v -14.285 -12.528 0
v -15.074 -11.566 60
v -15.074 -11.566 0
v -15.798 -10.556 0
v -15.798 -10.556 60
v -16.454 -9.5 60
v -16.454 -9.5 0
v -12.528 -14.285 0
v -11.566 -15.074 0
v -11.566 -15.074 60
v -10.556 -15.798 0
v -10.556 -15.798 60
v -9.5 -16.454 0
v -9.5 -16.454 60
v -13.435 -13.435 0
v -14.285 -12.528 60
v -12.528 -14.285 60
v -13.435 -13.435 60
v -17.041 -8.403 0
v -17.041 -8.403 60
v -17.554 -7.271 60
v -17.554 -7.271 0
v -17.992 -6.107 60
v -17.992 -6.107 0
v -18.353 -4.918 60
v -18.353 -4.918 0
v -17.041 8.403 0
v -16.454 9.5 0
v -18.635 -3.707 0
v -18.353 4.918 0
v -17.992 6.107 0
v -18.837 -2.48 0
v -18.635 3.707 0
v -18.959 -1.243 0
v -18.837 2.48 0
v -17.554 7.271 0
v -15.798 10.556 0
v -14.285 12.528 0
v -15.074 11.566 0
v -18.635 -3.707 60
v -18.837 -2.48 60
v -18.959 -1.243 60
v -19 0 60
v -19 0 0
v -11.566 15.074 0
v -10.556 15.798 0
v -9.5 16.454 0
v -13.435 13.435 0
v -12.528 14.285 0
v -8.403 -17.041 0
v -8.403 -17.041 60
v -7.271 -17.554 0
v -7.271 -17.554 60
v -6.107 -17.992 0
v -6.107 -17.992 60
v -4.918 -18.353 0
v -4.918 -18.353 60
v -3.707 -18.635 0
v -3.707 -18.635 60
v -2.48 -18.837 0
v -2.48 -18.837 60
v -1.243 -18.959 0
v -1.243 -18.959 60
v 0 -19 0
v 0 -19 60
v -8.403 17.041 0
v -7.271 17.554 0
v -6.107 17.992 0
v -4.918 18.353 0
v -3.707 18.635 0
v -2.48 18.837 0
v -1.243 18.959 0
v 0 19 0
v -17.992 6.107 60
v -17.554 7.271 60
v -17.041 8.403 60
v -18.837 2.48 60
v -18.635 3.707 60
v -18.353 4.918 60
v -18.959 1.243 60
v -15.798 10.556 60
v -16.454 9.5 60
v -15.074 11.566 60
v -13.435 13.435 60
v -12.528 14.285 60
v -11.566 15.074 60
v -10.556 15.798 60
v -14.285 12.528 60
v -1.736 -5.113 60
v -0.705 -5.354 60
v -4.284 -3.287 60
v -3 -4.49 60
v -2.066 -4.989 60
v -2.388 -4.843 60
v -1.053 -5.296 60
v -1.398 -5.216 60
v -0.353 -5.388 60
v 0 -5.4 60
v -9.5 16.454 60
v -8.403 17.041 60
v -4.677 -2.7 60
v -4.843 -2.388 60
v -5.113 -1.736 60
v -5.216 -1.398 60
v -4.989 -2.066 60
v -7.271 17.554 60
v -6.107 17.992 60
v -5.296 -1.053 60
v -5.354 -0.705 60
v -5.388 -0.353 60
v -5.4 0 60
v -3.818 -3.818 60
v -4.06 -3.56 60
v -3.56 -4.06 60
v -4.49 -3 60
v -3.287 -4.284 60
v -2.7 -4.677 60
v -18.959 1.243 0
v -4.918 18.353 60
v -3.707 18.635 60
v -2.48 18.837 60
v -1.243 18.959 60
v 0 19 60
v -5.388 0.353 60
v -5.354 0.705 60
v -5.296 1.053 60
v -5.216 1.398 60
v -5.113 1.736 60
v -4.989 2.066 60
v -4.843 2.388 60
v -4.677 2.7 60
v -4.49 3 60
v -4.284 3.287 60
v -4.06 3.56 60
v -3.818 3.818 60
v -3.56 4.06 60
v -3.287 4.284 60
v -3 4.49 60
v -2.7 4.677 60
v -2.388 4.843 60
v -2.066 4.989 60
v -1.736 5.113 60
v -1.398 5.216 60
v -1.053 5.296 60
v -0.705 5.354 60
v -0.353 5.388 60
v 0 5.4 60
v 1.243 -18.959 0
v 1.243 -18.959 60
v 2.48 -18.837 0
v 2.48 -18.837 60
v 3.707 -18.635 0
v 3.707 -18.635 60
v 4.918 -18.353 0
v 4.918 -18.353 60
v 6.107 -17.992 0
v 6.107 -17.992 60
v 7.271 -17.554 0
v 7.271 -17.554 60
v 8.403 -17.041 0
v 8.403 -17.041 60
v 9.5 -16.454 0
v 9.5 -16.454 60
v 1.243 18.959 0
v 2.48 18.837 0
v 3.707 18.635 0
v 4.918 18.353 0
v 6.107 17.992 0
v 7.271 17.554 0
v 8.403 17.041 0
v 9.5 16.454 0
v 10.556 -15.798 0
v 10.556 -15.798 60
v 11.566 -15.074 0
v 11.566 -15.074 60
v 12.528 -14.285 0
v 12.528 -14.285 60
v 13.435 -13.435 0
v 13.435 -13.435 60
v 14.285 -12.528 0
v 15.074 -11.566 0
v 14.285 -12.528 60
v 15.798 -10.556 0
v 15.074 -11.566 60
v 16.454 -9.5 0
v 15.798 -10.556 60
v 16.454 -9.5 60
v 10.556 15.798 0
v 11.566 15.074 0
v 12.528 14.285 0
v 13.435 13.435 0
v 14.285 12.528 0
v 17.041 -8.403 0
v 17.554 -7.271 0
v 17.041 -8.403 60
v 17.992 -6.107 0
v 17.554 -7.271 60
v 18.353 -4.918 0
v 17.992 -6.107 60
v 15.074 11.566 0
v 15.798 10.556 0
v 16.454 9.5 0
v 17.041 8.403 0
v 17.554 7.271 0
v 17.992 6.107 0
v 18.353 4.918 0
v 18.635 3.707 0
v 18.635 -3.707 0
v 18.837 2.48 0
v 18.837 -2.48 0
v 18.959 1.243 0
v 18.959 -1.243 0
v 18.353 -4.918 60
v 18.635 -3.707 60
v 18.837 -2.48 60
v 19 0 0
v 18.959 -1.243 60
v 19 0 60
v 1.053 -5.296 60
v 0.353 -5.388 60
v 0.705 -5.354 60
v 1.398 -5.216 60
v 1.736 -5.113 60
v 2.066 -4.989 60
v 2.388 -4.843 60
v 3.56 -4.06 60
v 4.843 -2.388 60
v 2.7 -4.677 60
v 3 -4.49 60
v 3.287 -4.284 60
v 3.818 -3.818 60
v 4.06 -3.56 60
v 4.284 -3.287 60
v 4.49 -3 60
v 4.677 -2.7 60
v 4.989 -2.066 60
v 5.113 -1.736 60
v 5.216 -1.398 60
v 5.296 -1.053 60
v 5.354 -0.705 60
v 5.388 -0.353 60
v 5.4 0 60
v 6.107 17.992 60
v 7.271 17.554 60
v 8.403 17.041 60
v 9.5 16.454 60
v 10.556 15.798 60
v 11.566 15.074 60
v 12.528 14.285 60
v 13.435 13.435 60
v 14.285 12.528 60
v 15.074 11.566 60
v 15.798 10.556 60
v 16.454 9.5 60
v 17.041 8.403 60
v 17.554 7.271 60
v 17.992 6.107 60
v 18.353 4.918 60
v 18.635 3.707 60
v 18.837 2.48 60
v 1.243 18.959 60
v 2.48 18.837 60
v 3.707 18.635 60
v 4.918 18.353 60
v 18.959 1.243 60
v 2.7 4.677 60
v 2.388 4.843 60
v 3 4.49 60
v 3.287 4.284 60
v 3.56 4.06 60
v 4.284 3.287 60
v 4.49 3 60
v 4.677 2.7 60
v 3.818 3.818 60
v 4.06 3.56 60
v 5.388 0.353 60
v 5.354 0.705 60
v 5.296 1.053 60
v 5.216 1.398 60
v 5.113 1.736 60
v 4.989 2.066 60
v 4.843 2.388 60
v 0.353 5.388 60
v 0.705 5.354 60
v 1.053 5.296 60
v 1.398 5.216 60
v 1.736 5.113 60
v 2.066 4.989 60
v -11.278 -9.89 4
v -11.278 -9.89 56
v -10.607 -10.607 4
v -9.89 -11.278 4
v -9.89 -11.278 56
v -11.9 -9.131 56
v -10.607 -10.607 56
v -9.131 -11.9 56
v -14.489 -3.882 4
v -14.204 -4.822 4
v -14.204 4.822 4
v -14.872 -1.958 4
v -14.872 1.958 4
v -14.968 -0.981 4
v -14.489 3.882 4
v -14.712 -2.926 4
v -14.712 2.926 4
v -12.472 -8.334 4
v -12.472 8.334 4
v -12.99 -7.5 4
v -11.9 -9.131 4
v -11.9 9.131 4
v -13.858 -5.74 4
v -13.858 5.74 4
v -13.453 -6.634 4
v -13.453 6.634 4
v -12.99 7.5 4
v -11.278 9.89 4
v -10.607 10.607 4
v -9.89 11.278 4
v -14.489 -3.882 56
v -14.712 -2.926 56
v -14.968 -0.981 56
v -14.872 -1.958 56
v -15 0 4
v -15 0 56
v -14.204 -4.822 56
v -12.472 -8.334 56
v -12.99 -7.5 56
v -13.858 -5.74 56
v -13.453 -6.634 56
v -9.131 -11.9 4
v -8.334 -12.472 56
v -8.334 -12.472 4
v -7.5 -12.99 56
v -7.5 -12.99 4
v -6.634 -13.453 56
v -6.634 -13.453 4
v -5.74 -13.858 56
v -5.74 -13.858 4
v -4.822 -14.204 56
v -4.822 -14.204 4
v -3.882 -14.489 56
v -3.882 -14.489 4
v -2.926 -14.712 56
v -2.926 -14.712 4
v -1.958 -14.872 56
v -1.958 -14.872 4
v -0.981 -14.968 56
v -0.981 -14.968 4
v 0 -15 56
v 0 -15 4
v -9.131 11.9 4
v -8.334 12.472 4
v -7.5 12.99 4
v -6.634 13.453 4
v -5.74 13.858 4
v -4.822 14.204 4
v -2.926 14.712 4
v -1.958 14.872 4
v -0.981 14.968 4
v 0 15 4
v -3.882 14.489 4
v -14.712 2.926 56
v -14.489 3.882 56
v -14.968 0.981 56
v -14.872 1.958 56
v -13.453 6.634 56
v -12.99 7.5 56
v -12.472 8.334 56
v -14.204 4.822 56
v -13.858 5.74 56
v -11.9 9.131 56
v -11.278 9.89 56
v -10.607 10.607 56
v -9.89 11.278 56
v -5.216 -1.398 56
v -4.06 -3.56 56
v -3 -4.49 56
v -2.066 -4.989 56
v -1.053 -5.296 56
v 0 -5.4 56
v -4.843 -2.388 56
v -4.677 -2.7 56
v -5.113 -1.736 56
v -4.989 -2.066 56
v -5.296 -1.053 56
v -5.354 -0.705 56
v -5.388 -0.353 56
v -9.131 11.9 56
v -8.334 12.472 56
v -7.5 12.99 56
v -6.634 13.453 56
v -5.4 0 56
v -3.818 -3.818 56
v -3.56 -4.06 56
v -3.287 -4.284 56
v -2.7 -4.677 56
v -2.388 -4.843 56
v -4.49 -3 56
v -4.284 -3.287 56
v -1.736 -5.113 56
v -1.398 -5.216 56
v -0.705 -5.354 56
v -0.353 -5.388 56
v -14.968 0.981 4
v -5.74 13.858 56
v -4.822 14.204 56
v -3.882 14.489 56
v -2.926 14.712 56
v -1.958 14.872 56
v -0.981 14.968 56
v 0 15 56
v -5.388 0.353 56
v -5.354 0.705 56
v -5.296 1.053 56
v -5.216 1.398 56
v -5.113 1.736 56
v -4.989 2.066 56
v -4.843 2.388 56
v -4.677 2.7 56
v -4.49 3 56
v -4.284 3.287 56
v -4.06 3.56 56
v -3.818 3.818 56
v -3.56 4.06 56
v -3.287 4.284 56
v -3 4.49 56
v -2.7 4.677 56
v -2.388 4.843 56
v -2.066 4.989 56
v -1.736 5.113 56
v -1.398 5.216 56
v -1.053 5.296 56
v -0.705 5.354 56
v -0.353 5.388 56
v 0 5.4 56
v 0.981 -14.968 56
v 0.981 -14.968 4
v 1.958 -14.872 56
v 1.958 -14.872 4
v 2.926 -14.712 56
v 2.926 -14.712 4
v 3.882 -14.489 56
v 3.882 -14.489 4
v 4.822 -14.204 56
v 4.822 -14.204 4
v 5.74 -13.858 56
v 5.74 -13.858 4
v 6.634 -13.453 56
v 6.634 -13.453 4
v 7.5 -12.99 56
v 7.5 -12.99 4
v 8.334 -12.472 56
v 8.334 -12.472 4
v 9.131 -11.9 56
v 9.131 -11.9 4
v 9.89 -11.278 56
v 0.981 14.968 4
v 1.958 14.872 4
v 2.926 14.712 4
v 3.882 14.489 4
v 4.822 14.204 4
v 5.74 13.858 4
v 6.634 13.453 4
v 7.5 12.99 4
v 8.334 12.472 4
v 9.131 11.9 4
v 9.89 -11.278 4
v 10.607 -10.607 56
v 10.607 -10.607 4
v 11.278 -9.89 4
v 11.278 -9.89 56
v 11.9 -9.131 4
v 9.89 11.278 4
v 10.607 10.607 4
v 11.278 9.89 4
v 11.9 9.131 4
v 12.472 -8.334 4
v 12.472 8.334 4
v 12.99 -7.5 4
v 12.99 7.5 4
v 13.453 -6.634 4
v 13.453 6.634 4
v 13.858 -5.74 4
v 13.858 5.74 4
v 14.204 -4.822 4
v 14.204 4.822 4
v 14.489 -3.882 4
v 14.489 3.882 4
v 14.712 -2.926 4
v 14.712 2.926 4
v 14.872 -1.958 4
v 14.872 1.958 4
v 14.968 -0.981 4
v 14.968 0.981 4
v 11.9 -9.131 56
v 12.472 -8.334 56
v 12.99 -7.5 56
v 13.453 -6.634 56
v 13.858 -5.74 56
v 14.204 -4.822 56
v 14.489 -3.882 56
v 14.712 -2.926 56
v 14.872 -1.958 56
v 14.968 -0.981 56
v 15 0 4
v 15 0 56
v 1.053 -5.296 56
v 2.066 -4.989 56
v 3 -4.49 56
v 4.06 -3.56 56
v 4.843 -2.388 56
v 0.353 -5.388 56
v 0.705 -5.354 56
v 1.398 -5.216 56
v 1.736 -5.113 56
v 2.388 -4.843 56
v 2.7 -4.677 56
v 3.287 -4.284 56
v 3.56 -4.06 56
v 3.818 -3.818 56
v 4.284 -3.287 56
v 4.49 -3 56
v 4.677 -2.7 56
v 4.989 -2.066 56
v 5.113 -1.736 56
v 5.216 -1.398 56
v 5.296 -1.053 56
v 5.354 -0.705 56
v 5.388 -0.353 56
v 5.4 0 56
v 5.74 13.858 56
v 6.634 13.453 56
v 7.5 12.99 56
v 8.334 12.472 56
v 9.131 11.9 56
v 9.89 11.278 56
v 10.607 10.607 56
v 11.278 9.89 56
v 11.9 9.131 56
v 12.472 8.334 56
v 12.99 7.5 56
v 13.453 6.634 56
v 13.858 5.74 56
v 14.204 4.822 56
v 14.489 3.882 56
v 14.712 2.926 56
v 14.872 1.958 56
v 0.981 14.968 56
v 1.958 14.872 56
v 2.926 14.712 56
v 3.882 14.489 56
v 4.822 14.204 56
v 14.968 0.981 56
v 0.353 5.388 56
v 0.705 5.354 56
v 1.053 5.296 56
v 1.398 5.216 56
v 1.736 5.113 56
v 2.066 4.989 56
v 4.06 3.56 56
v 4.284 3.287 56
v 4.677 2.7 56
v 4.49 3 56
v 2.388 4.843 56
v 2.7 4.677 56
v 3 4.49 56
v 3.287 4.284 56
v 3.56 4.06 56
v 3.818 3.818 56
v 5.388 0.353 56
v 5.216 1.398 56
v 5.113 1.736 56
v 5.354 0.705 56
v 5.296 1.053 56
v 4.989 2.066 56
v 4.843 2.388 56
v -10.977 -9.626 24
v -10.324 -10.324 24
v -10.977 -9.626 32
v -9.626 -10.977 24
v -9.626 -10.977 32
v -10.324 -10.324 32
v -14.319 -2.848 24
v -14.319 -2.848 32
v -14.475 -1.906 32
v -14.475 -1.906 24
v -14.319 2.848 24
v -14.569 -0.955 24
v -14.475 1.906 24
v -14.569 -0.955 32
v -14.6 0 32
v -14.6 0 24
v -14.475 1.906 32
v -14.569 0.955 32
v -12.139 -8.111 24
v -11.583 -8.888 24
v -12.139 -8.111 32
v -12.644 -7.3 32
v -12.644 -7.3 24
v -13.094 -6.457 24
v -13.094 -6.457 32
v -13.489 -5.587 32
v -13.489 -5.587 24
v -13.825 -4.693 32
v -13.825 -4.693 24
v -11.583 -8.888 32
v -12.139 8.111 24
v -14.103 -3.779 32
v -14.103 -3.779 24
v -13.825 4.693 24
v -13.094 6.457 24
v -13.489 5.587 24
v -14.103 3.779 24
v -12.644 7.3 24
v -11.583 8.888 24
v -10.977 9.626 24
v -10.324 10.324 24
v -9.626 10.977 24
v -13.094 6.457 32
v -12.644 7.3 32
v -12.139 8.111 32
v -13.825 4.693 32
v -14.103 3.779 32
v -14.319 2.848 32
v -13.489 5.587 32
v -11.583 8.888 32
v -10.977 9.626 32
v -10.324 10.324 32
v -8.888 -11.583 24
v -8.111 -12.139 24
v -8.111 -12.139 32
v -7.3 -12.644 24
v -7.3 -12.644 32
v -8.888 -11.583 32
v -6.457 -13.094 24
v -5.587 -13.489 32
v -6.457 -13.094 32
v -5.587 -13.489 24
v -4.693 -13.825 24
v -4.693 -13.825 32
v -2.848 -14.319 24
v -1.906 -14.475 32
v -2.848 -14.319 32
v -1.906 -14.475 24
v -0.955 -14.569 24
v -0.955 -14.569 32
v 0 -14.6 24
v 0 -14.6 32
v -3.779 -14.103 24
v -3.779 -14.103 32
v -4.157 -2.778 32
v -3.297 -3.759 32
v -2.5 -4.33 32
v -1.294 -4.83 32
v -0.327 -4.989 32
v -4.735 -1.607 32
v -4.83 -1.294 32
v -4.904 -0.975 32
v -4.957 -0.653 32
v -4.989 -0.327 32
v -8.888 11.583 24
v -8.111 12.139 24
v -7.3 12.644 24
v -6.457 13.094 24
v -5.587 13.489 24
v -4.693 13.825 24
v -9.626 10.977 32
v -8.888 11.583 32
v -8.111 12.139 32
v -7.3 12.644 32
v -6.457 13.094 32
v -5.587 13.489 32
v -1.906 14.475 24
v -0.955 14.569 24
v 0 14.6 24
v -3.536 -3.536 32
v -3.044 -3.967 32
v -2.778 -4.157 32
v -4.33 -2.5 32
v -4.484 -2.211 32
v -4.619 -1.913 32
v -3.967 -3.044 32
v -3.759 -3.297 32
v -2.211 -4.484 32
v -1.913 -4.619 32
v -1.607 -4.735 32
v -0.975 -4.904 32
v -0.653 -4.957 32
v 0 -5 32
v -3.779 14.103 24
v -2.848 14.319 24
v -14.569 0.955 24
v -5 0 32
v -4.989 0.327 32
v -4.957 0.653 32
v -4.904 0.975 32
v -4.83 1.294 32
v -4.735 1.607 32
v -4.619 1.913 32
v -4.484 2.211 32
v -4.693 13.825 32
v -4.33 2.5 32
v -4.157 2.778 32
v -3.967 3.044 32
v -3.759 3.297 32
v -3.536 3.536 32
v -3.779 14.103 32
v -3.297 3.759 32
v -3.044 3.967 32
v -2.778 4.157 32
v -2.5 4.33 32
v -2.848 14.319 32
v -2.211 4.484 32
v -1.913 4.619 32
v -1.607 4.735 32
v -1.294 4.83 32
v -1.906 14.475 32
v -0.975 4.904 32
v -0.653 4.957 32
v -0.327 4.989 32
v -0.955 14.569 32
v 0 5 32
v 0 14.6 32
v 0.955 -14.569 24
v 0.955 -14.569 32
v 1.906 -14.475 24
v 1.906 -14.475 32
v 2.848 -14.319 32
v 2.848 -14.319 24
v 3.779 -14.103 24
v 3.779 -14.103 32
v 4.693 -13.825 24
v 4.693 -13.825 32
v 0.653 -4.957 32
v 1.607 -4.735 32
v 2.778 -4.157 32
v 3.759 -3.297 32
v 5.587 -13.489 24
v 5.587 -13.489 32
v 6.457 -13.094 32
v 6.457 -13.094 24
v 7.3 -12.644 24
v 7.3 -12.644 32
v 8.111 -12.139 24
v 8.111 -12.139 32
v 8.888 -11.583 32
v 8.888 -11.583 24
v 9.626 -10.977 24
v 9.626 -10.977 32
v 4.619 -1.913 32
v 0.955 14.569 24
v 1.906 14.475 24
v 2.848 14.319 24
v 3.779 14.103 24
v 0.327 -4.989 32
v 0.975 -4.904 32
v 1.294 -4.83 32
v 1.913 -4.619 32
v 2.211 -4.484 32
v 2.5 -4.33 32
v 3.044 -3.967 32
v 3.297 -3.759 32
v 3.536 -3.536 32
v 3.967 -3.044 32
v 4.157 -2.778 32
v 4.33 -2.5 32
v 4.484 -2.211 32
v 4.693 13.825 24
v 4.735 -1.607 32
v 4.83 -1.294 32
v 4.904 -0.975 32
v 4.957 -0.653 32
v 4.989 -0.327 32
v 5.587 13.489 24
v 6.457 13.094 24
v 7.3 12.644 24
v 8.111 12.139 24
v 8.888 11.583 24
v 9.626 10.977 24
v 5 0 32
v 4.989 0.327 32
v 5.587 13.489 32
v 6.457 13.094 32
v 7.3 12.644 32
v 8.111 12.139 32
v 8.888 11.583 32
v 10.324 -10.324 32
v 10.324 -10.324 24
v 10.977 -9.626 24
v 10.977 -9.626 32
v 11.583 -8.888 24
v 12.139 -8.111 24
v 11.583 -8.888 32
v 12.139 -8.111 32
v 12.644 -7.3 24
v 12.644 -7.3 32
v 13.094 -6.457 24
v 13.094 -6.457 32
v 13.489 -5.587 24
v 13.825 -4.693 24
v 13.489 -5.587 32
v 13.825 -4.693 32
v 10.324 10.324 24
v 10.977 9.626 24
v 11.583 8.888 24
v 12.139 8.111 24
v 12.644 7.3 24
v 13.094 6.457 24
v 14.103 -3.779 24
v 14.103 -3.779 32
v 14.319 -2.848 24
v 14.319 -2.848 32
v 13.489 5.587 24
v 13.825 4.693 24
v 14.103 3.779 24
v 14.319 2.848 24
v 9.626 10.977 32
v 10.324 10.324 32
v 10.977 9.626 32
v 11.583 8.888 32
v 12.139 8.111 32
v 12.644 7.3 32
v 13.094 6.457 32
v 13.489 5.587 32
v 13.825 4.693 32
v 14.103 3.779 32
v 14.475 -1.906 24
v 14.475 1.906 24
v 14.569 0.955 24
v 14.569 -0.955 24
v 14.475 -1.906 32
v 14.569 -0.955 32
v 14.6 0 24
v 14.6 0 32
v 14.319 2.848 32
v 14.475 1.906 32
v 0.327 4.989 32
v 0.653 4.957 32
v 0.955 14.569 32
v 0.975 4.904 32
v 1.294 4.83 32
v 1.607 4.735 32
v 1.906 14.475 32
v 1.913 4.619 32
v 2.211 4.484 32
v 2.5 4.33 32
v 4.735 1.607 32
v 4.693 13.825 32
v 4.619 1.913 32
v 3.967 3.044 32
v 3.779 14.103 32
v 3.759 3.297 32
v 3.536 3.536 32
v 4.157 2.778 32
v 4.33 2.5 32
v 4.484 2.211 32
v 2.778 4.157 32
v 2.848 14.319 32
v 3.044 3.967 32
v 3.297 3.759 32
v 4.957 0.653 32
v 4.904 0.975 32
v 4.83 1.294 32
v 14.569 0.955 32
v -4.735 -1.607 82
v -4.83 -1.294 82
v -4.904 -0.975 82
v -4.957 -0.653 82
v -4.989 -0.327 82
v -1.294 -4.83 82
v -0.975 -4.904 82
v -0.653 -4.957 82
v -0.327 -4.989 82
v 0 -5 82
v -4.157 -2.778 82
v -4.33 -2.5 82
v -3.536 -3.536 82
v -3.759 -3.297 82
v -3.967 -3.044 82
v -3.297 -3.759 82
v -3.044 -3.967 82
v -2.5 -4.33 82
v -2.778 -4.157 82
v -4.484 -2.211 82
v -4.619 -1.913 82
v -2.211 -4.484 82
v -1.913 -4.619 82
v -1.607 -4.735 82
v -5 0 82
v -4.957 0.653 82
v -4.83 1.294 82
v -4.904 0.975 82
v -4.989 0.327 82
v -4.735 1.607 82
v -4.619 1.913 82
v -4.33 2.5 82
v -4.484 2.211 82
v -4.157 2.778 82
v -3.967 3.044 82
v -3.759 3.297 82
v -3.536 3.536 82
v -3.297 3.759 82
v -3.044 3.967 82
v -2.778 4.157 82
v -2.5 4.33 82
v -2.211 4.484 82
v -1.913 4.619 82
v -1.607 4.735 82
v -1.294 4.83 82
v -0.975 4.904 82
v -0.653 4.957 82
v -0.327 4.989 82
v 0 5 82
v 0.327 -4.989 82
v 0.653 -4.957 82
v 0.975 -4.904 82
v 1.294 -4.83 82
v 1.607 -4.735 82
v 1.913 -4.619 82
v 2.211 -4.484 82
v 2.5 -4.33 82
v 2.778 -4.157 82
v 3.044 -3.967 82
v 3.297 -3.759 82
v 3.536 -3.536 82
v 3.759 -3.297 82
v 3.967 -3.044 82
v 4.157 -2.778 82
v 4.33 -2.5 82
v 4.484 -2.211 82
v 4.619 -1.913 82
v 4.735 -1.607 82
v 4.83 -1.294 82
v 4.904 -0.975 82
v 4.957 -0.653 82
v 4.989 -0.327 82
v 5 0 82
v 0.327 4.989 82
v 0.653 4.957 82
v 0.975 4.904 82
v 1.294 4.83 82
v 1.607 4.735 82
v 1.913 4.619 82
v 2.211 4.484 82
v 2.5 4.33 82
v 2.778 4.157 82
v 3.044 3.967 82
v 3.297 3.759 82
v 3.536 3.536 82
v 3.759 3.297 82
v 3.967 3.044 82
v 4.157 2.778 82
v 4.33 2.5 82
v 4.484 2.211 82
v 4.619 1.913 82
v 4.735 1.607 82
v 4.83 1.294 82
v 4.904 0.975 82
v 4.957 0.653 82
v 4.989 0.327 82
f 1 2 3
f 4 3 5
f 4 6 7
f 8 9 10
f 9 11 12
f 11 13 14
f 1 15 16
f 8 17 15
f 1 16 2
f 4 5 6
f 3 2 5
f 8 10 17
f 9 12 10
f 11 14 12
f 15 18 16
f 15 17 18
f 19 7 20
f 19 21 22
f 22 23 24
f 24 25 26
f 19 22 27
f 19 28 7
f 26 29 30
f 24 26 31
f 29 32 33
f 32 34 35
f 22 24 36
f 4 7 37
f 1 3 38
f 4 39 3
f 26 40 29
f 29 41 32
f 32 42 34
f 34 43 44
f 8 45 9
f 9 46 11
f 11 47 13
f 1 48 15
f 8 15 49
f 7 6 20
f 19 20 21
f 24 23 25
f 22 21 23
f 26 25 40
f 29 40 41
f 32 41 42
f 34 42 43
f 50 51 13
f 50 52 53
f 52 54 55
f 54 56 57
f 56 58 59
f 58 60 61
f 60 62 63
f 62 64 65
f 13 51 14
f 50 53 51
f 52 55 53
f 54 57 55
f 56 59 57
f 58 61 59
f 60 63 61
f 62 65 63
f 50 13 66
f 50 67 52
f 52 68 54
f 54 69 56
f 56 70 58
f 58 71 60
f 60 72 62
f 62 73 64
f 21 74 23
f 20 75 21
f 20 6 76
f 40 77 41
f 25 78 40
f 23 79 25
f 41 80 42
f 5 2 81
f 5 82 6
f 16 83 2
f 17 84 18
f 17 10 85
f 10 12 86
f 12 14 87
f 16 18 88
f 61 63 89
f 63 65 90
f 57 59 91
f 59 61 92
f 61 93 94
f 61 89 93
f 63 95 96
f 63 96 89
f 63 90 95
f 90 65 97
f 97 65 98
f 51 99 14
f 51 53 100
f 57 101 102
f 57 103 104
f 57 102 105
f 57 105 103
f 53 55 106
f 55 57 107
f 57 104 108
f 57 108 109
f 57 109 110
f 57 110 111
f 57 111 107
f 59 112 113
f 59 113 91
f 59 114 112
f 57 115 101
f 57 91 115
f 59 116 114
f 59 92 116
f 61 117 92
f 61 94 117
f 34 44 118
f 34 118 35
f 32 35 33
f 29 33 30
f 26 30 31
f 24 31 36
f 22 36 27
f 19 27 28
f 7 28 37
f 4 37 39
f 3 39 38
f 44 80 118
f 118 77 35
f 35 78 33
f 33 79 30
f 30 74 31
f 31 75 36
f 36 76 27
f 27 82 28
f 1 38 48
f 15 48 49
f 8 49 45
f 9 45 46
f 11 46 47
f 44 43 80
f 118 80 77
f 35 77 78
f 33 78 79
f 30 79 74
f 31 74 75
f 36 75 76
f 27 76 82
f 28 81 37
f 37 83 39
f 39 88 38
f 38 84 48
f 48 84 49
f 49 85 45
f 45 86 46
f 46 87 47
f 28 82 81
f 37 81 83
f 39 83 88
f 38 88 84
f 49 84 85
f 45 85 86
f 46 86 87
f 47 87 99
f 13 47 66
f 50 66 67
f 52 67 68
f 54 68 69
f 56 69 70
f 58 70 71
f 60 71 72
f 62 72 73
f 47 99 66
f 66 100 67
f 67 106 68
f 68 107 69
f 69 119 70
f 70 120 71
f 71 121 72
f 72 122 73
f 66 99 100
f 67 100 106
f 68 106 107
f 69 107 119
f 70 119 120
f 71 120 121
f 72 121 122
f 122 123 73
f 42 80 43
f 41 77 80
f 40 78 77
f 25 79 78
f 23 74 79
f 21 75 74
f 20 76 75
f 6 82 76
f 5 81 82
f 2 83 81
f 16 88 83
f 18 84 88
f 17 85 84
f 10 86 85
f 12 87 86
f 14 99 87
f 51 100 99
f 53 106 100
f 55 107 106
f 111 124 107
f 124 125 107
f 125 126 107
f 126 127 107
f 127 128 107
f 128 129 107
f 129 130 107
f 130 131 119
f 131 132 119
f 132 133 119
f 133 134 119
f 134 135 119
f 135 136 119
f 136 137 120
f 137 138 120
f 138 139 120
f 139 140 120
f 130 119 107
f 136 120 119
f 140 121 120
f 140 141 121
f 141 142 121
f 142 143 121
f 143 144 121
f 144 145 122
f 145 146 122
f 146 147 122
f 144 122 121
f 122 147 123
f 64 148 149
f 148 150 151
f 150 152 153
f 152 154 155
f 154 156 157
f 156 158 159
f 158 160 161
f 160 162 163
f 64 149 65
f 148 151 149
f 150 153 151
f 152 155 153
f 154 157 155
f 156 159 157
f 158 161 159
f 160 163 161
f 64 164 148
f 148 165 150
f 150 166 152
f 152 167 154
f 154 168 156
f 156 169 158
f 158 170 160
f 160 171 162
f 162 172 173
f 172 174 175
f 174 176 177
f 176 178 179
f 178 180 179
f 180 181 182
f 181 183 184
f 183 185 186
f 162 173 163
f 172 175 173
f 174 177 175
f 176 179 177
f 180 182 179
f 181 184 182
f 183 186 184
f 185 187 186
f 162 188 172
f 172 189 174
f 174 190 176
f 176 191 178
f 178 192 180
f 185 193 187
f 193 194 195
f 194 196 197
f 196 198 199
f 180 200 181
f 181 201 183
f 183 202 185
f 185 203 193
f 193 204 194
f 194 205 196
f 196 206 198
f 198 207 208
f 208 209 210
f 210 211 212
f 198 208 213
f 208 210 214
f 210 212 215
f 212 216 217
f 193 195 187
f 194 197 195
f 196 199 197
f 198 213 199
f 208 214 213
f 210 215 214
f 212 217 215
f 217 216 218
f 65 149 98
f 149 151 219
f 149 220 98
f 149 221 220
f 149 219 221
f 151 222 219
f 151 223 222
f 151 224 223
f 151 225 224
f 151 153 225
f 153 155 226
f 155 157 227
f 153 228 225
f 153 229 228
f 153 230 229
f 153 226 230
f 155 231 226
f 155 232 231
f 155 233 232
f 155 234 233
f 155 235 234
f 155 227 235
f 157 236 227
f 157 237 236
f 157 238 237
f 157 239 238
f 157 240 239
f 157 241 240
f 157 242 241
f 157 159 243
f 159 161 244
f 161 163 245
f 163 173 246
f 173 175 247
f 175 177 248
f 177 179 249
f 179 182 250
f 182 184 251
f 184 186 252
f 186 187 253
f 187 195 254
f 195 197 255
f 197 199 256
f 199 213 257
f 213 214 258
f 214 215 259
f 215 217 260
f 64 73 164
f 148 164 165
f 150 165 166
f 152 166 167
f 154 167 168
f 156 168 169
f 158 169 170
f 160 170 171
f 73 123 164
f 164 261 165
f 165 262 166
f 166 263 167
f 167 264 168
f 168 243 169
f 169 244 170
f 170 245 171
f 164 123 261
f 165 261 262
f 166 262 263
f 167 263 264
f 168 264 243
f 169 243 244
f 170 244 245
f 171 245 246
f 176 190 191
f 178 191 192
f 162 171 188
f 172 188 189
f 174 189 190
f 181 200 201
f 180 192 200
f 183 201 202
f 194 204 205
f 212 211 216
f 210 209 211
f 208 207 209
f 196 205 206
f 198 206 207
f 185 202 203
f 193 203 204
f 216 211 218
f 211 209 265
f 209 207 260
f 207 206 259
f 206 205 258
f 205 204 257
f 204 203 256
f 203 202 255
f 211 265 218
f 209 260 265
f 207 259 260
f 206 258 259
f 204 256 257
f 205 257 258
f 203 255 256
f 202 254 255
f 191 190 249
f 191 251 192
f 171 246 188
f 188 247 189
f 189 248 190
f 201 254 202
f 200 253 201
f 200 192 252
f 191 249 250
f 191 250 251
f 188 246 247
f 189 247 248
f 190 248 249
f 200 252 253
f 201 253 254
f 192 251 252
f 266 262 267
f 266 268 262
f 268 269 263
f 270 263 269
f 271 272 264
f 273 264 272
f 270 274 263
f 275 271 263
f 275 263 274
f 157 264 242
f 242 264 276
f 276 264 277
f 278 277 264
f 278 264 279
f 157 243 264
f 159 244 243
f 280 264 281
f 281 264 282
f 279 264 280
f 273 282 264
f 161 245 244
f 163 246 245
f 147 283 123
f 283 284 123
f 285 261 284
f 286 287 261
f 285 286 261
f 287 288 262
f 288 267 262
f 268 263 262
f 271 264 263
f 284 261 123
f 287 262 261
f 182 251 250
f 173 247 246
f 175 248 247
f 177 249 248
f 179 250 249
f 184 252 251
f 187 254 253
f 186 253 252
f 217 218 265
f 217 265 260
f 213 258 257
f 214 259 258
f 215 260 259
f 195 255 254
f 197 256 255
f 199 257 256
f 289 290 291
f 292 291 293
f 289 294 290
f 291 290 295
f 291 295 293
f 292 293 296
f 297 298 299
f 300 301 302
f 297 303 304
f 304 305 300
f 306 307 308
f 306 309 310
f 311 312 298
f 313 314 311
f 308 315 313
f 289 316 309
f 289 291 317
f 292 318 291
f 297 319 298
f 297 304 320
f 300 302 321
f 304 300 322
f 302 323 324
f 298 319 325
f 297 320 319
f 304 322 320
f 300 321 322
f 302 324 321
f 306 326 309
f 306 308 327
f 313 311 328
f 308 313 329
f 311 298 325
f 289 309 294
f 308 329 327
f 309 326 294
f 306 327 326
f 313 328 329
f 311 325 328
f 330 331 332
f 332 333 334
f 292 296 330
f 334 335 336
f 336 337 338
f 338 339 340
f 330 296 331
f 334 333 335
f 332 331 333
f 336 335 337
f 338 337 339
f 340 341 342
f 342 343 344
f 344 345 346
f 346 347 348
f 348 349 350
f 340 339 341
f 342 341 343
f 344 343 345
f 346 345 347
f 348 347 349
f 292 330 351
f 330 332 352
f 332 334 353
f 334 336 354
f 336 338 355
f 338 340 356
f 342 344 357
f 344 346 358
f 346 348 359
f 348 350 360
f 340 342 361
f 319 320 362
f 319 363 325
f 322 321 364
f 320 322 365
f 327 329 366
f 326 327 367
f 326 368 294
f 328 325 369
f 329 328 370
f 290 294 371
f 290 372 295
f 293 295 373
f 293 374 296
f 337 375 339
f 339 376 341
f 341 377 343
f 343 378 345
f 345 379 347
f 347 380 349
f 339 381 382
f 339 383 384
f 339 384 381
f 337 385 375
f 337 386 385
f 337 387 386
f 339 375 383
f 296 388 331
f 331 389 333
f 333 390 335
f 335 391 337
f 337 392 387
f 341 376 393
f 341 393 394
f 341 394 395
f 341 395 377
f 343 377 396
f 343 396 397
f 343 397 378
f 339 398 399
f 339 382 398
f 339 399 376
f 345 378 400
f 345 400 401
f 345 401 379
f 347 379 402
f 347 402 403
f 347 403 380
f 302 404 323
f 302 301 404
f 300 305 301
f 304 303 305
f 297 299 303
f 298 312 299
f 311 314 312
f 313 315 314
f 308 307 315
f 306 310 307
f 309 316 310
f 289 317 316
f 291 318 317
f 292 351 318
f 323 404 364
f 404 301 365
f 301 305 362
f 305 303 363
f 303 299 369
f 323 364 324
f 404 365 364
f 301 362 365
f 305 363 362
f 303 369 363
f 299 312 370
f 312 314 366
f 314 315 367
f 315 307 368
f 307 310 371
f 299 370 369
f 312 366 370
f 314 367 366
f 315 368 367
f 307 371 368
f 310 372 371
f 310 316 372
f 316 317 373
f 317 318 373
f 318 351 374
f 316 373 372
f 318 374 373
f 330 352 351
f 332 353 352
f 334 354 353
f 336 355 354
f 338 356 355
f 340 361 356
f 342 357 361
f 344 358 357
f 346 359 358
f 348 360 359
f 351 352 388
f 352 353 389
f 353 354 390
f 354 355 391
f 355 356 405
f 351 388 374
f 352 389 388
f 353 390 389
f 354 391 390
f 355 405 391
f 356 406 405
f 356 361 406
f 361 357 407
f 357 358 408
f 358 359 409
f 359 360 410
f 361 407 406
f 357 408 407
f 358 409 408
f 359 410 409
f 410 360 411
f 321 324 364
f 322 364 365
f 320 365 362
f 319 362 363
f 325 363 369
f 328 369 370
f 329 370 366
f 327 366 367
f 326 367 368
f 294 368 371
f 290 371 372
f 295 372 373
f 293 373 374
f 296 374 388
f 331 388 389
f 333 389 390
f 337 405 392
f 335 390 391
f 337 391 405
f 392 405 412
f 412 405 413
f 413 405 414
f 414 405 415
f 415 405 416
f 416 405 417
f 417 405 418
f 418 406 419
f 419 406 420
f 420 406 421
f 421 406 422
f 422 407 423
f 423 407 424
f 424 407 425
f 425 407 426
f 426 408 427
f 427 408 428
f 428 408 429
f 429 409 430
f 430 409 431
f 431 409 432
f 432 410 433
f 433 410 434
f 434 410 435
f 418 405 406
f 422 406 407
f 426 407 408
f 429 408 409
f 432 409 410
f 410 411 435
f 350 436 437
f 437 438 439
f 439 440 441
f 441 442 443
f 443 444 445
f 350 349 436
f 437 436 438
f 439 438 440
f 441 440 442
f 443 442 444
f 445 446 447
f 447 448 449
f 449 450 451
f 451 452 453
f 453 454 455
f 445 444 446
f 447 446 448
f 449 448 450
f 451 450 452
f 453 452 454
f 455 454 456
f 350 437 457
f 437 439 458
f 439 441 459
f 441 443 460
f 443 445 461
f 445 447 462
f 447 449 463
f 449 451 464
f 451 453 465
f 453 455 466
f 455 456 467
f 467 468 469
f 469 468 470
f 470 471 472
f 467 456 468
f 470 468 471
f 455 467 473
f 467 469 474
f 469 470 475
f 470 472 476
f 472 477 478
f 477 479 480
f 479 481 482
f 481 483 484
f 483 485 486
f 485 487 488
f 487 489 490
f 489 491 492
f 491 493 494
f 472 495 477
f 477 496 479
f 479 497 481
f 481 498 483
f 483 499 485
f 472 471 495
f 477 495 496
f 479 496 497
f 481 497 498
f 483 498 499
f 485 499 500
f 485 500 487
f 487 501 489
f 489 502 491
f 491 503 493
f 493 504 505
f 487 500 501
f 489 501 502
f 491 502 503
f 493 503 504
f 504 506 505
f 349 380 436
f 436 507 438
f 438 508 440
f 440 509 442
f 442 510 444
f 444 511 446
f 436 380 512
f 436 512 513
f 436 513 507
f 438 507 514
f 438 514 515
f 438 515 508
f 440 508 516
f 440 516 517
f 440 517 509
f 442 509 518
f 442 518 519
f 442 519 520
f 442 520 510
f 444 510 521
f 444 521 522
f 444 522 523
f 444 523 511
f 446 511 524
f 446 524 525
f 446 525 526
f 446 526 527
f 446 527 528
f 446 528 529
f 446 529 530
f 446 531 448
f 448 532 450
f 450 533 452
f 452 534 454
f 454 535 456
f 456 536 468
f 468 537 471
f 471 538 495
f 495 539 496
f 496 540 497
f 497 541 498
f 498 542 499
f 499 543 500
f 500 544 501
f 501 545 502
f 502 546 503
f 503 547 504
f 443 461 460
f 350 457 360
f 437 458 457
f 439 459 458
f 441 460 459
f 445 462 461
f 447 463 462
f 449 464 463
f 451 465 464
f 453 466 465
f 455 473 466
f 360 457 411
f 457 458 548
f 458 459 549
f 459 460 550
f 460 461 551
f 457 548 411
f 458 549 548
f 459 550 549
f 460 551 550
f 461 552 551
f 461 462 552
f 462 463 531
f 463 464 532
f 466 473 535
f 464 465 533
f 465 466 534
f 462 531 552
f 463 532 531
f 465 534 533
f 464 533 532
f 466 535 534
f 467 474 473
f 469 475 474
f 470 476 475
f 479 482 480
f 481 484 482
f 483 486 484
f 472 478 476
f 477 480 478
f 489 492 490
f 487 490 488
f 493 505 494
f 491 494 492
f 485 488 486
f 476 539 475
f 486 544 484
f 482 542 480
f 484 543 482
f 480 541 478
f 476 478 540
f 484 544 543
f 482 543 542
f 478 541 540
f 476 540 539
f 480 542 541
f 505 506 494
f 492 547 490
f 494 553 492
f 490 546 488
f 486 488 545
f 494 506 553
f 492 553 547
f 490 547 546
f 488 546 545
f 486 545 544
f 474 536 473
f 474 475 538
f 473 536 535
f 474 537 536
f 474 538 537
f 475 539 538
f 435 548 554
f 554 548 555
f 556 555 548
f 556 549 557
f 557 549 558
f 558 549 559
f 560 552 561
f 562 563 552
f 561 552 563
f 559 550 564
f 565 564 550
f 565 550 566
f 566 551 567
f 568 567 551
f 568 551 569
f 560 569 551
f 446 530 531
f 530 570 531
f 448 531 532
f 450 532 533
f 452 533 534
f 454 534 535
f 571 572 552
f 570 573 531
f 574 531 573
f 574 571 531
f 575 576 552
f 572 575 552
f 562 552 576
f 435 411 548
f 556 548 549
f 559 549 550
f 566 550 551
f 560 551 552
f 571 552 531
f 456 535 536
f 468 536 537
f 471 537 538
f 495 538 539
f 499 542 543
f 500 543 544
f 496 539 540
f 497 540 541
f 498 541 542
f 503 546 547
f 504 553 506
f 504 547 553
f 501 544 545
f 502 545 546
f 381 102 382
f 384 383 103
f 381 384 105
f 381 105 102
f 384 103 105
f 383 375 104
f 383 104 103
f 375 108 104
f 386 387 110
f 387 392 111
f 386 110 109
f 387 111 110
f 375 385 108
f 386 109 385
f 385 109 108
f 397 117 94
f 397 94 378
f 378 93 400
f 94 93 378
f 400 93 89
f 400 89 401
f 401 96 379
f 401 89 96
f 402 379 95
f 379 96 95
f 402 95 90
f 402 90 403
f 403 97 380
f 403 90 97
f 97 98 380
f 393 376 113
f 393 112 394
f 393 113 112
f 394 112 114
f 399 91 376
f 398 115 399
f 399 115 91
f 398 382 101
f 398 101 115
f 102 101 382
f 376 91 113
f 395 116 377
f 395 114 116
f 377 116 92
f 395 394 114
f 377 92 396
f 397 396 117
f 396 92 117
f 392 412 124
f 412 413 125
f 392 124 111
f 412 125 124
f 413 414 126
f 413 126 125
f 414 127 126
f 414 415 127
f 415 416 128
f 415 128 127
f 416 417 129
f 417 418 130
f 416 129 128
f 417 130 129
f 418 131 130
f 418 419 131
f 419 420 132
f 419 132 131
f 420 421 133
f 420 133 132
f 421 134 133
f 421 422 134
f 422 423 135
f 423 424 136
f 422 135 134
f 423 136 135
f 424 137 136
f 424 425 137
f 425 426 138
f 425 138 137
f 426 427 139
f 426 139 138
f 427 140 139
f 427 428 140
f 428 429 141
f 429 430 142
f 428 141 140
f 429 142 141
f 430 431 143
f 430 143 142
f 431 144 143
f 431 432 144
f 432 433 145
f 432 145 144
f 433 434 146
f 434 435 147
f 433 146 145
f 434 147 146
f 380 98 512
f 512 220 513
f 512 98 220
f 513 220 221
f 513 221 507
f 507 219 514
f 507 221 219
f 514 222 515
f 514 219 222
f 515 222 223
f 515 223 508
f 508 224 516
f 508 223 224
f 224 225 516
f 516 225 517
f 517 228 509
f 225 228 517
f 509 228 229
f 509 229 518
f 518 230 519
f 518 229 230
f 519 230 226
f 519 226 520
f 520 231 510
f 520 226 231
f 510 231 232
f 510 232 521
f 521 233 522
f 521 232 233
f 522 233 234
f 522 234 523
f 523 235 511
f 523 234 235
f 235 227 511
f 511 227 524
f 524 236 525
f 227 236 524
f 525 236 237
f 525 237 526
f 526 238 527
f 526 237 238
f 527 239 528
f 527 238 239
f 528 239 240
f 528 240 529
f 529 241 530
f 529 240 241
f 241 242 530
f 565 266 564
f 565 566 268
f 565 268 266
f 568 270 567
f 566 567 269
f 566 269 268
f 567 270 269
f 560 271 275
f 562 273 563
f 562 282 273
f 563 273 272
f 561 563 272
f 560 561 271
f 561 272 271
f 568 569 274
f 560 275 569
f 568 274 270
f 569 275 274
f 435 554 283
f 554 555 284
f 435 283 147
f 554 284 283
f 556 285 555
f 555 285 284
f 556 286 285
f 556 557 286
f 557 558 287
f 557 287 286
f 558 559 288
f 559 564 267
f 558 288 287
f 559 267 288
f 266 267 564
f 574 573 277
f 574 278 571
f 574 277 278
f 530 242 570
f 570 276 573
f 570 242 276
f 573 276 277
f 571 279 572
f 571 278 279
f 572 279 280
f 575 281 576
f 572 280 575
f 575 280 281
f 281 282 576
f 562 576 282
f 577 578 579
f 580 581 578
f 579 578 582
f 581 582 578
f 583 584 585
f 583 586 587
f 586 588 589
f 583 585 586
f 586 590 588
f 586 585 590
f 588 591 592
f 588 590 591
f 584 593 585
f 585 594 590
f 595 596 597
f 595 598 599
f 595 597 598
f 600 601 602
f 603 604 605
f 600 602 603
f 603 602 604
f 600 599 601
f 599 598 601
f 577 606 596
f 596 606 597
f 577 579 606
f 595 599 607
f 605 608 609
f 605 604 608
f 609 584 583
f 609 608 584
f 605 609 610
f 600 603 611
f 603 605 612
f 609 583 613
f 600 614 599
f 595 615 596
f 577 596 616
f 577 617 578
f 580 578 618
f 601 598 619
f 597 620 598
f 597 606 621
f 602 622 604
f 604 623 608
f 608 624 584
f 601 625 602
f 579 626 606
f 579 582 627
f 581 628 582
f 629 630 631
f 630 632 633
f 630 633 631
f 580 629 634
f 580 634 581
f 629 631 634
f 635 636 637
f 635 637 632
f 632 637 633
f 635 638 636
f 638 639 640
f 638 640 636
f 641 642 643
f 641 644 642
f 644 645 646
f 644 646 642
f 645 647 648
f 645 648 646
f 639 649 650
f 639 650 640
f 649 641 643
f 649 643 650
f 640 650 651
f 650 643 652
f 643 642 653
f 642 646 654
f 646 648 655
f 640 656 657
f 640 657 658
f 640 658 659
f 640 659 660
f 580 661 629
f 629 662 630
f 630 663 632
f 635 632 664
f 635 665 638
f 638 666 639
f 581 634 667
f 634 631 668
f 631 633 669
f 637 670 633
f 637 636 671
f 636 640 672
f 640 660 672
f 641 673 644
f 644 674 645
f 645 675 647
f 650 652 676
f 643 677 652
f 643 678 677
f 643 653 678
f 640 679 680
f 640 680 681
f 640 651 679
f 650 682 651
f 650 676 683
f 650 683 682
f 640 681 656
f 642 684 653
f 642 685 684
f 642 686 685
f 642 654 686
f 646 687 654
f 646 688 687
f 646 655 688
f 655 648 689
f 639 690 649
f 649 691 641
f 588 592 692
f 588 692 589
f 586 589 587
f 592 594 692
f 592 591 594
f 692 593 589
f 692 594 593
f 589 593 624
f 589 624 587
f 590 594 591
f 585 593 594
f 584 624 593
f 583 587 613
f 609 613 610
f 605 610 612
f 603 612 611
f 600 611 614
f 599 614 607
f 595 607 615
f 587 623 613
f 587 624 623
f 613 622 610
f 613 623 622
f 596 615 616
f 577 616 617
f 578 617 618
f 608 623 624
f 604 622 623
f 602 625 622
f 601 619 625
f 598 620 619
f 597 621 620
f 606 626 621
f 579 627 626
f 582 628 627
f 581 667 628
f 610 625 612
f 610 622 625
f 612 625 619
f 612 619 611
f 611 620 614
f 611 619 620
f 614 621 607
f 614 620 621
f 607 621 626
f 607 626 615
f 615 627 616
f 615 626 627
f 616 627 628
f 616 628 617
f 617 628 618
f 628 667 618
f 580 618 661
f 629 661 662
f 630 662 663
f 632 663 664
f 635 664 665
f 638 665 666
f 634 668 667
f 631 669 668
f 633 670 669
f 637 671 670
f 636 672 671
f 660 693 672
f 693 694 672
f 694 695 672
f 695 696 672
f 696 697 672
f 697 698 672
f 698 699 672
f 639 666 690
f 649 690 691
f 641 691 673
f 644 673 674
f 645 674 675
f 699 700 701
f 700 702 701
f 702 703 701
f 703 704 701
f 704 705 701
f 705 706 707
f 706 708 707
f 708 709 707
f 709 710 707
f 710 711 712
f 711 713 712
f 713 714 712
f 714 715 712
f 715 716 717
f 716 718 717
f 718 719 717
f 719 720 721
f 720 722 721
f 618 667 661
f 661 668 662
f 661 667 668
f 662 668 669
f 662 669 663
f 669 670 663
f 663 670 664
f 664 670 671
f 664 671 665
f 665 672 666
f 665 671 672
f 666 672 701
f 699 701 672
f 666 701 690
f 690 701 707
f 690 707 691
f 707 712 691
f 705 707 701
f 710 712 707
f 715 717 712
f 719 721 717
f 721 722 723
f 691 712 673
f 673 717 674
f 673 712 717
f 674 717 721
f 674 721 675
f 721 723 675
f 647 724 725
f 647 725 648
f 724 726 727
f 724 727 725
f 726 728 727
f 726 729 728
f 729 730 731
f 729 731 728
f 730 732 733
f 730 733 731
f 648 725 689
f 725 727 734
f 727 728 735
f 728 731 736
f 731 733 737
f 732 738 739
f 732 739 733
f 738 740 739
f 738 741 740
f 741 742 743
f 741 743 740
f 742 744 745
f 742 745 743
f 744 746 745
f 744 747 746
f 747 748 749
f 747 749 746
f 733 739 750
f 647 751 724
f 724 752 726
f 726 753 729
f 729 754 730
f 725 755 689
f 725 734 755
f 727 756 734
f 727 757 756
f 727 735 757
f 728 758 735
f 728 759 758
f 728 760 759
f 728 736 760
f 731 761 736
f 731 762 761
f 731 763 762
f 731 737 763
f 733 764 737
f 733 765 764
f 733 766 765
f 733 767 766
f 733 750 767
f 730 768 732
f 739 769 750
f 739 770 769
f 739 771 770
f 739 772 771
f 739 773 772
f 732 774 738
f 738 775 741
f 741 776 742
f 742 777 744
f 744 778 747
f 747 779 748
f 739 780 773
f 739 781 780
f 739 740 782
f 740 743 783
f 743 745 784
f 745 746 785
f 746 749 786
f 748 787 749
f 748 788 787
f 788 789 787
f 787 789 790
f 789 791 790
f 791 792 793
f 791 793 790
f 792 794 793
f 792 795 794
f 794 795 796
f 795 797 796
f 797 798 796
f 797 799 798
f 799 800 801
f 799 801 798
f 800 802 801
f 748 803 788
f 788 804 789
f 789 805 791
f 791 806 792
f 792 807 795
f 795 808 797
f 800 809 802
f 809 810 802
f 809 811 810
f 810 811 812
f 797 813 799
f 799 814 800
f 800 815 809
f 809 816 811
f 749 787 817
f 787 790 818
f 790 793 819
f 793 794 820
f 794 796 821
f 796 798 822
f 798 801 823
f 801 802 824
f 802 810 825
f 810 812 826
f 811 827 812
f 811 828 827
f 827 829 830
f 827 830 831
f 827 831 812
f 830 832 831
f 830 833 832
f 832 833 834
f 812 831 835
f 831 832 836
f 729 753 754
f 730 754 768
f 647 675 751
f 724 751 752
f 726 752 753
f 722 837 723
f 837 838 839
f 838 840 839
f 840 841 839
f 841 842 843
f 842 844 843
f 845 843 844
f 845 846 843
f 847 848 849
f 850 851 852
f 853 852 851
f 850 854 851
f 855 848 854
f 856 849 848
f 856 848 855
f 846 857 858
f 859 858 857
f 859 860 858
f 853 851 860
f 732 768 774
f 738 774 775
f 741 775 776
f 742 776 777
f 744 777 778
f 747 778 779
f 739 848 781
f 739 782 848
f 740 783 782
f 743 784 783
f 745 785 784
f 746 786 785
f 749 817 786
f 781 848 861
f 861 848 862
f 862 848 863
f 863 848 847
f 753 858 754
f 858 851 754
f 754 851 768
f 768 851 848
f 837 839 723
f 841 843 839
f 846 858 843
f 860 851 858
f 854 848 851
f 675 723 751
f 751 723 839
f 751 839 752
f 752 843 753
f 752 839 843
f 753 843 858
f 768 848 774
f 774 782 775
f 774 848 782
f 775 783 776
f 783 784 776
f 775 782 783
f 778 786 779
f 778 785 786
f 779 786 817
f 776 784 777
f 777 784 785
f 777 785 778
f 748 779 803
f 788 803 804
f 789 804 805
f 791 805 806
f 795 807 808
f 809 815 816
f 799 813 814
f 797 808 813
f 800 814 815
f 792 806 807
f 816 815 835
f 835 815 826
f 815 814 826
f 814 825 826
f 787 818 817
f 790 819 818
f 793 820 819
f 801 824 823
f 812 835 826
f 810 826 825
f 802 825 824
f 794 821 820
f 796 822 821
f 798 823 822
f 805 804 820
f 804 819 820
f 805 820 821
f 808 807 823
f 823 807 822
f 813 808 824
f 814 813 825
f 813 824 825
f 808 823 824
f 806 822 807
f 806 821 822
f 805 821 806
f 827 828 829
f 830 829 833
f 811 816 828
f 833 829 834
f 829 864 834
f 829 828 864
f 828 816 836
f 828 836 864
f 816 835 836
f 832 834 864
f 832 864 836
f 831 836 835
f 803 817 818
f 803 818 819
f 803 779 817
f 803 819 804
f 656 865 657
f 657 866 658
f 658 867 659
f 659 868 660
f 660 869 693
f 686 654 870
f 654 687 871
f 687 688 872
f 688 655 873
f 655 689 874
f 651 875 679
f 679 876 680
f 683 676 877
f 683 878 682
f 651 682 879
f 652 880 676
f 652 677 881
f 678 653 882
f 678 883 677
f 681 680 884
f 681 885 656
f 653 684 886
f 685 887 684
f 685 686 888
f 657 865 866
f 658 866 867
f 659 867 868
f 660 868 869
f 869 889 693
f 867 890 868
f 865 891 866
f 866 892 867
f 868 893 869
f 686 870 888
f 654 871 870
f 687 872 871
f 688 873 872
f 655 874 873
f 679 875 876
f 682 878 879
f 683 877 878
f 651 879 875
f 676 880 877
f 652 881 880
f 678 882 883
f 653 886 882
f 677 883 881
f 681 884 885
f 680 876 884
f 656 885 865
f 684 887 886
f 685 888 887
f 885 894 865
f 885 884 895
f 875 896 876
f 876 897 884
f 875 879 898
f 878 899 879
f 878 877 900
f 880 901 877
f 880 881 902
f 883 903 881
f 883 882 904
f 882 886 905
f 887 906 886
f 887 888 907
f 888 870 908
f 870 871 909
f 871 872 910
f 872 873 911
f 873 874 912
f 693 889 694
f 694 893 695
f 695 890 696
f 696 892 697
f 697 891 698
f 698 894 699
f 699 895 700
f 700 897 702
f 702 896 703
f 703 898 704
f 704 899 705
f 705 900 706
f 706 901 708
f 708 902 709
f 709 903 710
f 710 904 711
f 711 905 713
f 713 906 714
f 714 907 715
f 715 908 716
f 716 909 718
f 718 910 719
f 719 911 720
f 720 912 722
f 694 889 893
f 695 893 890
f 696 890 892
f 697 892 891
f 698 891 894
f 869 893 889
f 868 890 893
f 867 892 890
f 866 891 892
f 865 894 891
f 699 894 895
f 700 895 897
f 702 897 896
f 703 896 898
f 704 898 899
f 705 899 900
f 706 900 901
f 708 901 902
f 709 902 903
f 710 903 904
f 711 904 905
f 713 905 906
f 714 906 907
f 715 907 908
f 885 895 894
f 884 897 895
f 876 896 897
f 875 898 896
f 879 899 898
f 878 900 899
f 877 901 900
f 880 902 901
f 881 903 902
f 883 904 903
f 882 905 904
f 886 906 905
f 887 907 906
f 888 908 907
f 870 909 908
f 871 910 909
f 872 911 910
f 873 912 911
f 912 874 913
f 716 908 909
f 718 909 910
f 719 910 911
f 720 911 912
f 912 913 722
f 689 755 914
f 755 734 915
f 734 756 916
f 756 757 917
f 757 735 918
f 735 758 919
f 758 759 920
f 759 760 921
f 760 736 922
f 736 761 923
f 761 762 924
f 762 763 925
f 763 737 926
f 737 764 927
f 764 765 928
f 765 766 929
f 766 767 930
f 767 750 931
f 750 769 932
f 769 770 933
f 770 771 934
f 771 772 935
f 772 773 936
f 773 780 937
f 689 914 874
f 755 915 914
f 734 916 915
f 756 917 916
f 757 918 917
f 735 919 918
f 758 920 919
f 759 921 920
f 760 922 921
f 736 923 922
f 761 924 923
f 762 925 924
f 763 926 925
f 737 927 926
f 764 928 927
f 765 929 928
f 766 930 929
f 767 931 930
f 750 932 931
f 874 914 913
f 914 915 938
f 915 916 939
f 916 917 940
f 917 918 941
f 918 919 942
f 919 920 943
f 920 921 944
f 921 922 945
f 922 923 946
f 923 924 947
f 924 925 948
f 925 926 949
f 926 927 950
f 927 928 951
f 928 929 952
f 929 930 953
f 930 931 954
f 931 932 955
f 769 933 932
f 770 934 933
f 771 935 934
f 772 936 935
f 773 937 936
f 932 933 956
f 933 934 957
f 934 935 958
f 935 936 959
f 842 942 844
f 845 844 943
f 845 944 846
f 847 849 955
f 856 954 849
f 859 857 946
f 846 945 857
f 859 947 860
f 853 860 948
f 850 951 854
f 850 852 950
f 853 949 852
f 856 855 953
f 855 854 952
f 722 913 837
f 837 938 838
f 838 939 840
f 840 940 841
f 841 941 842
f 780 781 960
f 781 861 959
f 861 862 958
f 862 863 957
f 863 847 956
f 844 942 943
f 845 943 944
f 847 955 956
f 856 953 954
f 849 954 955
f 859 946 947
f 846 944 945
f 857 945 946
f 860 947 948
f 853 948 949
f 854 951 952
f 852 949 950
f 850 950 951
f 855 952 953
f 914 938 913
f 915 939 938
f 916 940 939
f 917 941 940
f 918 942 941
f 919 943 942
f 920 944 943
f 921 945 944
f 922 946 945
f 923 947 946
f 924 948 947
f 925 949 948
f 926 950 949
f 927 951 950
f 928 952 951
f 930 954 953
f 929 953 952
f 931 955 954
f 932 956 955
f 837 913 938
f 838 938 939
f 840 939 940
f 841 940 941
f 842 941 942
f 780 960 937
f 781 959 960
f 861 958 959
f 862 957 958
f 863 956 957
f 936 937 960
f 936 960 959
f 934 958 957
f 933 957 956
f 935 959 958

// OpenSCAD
// @main_component Hollow Cylinder

// Functional print-in-place piston-cylinder assembly.
// All dimensions are millimetres. The cylinder and piston are disjoint solids.

$fn = 96;

bore_diameter = 30;
wall_thickness = 4;
cylinder_outer_diameter = bore_diameter + 2 * wall_thickness;
cylinder_length = 60;
rear_end_thickness = 4;
front_end_thickness = 4;
chamber_length = cylinder_length - rear_end_thickness - front_end_thickness;

piston_head_diameter = 29.2;
piston_head_thickness = 8;
radial_bore_clearance = (bore_diameter - piston_head_diameter) / 2;

rod_diameter = 10;
rod_guide_diameter = 10.8;
rod_length = 50;

// The piston head bottom may move from z=4 to z=44: exactly 40 mm.
// @param min=4 max=44 step=1 label=Piston_position
piston_z = 24;

epsilon = 0.2;

module hollow_cylinder() {
    difference() {
        cylinder(d = cylinder_outer_diameter, h = cylinder_length);

        // Axial 30 mm bore, leaving 4 mm integral walls at both ends.
        translate([0, 0, rear_end_thickness])
            cylinder(d = bore_diameter, h = chamber_length);

        // Coaxial rod guide through the front wall, with 0.4 mm radial clearance.
        translate([0, 0, cylinder_length - front_end_thickness - epsilon])
            cylinder(d = rod_guide_diameter,
                     h = front_end_thickness + 2 * epsilon);
    }
}

module piston_and_rod() {
    union() {
        // Head has 0.4 mm running clearance per side inside the bore.
        translate([0, 0, piston_z])
            cylinder(d = piston_head_diameter, h = piston_head_thickness);

        // Slight overlap joins the rod only to its own piston head.
        translate([0, 0, piston_z + piston_head_thickness - epsilon])
            cylinder(d = rod_diameter, h = rod_length + epsilon);
    }
}

hollow_cylinder();
piston_and_rod();
